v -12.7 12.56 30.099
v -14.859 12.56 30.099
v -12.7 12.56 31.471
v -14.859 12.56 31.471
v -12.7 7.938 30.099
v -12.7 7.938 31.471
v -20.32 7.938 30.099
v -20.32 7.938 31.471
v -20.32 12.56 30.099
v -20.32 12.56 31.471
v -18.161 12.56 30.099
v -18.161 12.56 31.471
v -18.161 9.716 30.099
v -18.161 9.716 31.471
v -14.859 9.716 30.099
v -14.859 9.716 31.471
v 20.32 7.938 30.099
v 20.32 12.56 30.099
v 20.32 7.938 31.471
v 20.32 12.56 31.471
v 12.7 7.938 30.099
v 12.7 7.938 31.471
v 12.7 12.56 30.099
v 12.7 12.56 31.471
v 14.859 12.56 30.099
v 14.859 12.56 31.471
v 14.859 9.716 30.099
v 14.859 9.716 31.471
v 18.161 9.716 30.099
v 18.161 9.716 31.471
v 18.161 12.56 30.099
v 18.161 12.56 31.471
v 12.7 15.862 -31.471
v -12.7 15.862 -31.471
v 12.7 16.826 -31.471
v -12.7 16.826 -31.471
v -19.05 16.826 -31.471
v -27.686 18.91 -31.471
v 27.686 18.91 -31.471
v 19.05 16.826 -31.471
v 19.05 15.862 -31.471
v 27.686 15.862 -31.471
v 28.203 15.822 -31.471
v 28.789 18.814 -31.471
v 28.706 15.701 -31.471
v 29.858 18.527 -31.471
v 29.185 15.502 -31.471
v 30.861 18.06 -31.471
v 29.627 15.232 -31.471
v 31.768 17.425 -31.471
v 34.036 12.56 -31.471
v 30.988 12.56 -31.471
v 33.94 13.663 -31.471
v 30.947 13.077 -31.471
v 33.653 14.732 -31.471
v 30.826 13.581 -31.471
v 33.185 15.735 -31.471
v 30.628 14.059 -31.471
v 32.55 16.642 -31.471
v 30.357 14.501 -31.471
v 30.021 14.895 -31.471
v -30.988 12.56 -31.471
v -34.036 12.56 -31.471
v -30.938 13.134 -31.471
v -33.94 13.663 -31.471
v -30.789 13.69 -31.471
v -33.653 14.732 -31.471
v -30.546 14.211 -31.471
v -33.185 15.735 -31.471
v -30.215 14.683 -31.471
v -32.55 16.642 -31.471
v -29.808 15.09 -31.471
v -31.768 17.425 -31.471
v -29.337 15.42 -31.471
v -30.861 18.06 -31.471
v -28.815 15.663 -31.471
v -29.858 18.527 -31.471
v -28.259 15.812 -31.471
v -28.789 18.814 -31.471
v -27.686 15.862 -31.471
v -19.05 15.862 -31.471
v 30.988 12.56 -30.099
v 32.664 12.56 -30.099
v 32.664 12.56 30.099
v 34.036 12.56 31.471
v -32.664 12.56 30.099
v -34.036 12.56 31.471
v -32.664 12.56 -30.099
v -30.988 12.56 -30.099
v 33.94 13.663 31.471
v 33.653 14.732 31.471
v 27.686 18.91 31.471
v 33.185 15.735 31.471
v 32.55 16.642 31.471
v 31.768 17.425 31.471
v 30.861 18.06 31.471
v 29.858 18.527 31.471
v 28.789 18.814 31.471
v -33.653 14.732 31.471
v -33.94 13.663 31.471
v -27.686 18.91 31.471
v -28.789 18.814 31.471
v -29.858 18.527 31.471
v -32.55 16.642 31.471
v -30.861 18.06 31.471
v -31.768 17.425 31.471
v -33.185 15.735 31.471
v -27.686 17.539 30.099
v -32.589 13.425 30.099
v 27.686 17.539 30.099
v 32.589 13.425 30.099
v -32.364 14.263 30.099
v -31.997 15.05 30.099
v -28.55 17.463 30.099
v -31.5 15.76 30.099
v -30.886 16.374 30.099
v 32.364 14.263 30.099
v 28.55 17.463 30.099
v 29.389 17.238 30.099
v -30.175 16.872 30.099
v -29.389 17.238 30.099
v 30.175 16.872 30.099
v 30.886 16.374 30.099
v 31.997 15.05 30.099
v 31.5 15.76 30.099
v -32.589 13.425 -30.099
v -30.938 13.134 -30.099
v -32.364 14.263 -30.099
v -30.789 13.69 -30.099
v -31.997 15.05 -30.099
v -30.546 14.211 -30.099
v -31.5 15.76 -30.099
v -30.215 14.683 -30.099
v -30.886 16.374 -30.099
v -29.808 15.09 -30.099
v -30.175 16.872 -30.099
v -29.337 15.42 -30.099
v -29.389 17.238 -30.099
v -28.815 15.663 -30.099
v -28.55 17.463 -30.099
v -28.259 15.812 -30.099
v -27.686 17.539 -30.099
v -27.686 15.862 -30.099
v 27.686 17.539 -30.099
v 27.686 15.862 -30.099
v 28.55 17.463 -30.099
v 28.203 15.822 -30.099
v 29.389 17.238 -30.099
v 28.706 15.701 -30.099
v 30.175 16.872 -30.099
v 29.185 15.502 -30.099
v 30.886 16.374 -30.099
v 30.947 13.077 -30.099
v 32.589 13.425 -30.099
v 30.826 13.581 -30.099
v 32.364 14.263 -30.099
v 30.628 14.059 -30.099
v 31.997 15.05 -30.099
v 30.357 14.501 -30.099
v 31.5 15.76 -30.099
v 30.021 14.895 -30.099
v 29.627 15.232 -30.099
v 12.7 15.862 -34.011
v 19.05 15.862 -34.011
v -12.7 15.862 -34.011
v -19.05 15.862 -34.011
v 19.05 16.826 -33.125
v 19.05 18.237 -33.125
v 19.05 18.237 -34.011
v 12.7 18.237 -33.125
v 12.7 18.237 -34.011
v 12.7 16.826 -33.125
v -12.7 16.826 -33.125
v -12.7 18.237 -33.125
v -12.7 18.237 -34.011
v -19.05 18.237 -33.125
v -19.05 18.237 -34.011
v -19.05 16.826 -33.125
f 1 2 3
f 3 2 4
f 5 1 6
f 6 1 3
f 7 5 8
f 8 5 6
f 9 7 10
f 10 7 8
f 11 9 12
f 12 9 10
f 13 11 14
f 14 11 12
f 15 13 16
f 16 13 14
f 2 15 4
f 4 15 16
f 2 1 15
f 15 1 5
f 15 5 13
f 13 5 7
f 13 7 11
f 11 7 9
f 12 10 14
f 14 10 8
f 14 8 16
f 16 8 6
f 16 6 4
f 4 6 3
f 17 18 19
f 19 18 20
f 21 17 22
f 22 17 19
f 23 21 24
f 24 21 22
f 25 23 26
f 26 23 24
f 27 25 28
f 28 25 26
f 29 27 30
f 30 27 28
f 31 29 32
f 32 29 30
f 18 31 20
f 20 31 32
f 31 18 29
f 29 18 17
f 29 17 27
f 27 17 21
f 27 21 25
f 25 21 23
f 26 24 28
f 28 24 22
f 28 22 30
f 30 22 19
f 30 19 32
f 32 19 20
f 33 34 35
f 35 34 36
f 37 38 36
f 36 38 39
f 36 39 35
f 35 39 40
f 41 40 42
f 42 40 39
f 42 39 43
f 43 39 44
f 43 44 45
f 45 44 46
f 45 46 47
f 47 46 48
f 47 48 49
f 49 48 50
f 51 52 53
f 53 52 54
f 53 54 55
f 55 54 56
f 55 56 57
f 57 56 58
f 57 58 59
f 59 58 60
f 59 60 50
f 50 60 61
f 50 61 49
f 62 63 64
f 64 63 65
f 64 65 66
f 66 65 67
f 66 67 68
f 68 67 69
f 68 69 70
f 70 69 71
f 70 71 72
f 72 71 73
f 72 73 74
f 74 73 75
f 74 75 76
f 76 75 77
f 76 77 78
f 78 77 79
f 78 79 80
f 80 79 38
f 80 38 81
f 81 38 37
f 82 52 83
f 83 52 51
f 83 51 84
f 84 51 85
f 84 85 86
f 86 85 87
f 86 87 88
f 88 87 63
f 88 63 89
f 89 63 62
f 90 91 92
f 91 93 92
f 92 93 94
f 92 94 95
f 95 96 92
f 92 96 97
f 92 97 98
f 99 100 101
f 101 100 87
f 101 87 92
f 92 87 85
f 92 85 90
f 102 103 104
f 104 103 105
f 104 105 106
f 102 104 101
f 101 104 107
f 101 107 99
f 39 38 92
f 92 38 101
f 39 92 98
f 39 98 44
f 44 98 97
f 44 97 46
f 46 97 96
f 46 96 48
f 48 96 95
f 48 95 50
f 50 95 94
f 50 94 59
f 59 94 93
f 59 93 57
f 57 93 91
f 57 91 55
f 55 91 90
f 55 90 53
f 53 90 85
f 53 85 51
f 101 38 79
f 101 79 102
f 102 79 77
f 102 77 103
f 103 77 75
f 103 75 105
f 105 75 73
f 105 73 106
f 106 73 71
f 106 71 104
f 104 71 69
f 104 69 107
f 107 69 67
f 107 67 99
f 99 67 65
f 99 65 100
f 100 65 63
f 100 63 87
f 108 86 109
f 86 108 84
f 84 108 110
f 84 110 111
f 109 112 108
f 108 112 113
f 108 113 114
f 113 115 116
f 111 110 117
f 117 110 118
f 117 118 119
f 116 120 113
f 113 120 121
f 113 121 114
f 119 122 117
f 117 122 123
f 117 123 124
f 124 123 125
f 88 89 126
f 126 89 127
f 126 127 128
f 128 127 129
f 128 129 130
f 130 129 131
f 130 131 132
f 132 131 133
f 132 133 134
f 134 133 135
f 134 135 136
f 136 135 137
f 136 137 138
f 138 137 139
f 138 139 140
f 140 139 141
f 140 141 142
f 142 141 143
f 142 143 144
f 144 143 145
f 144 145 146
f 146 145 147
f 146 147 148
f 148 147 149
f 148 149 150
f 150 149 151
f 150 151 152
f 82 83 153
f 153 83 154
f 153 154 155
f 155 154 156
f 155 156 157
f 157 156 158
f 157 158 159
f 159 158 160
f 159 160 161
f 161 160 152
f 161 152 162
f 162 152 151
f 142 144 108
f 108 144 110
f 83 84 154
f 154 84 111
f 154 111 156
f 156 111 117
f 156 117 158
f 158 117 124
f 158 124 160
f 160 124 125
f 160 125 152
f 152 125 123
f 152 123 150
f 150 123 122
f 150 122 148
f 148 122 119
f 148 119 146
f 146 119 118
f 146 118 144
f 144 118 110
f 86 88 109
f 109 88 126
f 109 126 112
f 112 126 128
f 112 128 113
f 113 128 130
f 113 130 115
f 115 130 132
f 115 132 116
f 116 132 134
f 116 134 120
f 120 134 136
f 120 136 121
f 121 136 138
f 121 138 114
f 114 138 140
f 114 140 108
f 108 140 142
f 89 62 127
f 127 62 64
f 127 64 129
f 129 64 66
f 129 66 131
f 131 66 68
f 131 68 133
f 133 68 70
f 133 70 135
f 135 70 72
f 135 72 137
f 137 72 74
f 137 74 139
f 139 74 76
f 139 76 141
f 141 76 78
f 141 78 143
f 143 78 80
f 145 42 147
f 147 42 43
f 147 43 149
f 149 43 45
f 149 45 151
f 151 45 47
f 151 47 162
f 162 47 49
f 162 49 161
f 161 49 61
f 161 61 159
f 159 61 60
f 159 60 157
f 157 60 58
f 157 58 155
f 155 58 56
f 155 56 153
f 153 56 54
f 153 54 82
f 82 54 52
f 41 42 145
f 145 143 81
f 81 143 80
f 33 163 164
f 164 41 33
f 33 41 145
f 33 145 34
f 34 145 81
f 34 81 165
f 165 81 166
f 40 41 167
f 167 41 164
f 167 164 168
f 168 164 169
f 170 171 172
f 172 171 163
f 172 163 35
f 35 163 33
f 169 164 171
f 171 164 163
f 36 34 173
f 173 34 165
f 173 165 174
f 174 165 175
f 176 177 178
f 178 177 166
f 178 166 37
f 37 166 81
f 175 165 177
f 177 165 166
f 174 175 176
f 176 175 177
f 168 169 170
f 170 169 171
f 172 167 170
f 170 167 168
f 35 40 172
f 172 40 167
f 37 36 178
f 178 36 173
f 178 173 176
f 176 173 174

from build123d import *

# Parameters (mm, degrees)
SKETCH1_W                = 68.072
SKETCH1_H                = 62.9412
BOSS_EXTRUDE1_DEPTH      = 18.9103
FILLET1_R                = 6.35
SKETCH36_W               = 62.9412
SKETCH36_H               = 12.5603
CUT_EXTRUDE13_DEPTH      = 1
CUT_EXTRUDE13_DEPTH_BACK = 69.072
BOSS_EXTRUDE2_DEPTH      = 1.3716
BOSS_EXTRUDE2_2_DEPTH    = 1.3716
SHELL1_T                 = -1.3716
CUT_EXTRUDE14_DEPTH      = 1.3716
SKETCH41_W               = 6.35
SKETCH41_H               = 3.6449
BOSS_EXTRUDE4_DEPTH      = 2.54
SKETCH42_W               = 38.1
SKETCH42_H               = 1.27
CUT_EXTRUDE15_DEPTH      = 2.54
SKETCH43_W               = 1.654238959
SKETCH43_H               = 1.41141074
CUT_EXTRUDE16_DEPTH      = 54.086


with BuildPart() as part:
    # Sketch1 → Boss-Extrude1 (new body)
    with BuildSketch(Plane(origin=(0, 0, 0), x_dir=(1, 0, 0), z_dir=(0, 1, 0))):
        Rectangle(SKETCH1_W, SKETCH1_H)
    extrude(amount=BOSS_EXTRUDE1_DEPTH)

    # Fillet1
    fillet1_edges = [part.edges().sort_by_distance(p)[0] for p in [
        (34.036, 18.9103, 0),
        (-34.036, 18.9103, 0),
        (34.036, 0, 0),
        (-34.036, 0, 0),
    ]]
    fillet(fillet1_edges, radius=FILLET1_R)

    # Sketch36 → Cut-Extrude13 (cut, two sides)
    with BuildSketch(Plane(origin=(34.036, 0, 0), x_dir=(0, 0, -1), z_dir=(1, 0, 0))) as cut_extrude13_sk:
        with Locations((0, 6.28015)):
            Rectangle(SKETCH36_W, SKETCH36_H)
    extrude(amount=CUT_EXTRUDE13_DEPTH, mode=Mode.SUBTRACT)
    extrude(cut_extrude13_sk.sketch, amount=-CUT_EXTRUDE13_DEPTH_BACK, mode=Mode.SUBTRACT)

    # Shell1
    shell1_openings = [part.faces().sort_by_distance(p)[0] for p in [
        (0, 12.5603, 0),
    ]]
    offset(amount=SHELL1_T, openings=shell1_openings, kind=Kind.INTERSECTION)

    # Sketch40 → Cut-Extrude14 (cut)
    with BuildSketch(Plane(origin=(0, 0, -31.4706), x_dir=(-1, 0, 0), z_dir=(0, 0, -1))):
        with BuildLine():
            Line((27.686, 15.8623), (-27.686, 15.8623))
            ThreePointArc((-27.686, 15.8623), (-30.020866591, 14.895166591), (-30.988, 12.5603))
            Line((-30.988, 12.5603), (30.988, 12.5603))
            ThreePointArc((30.988, 12.5603), (30.020866591, 14.895166591), (27.686, 15.8623))
        make_face()
    extrude(amount=-CUT_EXTRUDE14_DEPTH, mode=Mode.SUBTRACT)

    # Sketch41 → Boss-Extrude4 (add)
    with BuildSketch(Plane(origin=(0, 0, -31.4706), x_dir=(-1, 0, 0), z_dir=(0, 0, -1))):
        with Locations((-15.875, 17.68475)):
            Rectangle(SKETCH41_W, SKETCH41_H)
        with Locations((15.875, 17.68475)):
            Rectangle(SKETCH41_W, SKETCH41_H)
    extrude(amount=BOSS_EXTRUDE4_DEPTH)

    # Sketch42 → Cut-Extrude15 (cut)
    with BuildSketch(Plane(origin=(0, 0, -34.0106), x_dir=(-1, 0, 0), z_dir=(0, 0, -1))):
        with Locations((0, 18.8722)):
            Rectangle(SKETCH42_W, SKETCH42_H)
    extrude(amount=-CUT_EXTRUDE15_DEPTH, mode=Mode.SUBTRACT)

    # Sketch43 → Cut-Extrude16 (cut, through all)
    with BuildSketch(Plane.ZY.offset(19.05)):
        with Locations((-32.29771948, 17.53149463)):
            Rectangle(SKETCH43_W, SKETCH43_H)
    extrude(amount=-CUT_EXTRUDE16_DEPTH, mode=Mode.SUBTRACT)


with BuildPart() as body_2:
    # Sketch37 → Boss-Extrude2 (new body)
    with BuildSketch(Plane.XY.offset(31.4706)):
        Polygon((-18.161, 12.5603), (-20.32, 12.5603), (-20.32, 7.9375), (-12.7, 7.9375), (-12.7, 12.5603), (-14.859, 12.5603), (-14.859, 9.7155), (-18.161, 9.7155), align=None)
    extrude(amount=-BOSS_EXTRUDE2_DEPTH)


with BuildPart() as body_3:
    # Sketch37 → Boss-Extrude2 2 (new body)
    with BuildSketch(Plane.XY.offset(31.4706)):
        Polygon((14.859, 12.5603), (12.7, 12.5603), (12.7, 7.9375), (20.32, 7.9375), (20.32, 12.5603), (18.161, 12.5603), (18.161, 9.7155), (14.859, 9.7155), align=None)
    extrude(amount=-BOSS_EXTRUDE2_2_DEPTH)


solid = Compound([part.part, body_2.part, body_3.part])
